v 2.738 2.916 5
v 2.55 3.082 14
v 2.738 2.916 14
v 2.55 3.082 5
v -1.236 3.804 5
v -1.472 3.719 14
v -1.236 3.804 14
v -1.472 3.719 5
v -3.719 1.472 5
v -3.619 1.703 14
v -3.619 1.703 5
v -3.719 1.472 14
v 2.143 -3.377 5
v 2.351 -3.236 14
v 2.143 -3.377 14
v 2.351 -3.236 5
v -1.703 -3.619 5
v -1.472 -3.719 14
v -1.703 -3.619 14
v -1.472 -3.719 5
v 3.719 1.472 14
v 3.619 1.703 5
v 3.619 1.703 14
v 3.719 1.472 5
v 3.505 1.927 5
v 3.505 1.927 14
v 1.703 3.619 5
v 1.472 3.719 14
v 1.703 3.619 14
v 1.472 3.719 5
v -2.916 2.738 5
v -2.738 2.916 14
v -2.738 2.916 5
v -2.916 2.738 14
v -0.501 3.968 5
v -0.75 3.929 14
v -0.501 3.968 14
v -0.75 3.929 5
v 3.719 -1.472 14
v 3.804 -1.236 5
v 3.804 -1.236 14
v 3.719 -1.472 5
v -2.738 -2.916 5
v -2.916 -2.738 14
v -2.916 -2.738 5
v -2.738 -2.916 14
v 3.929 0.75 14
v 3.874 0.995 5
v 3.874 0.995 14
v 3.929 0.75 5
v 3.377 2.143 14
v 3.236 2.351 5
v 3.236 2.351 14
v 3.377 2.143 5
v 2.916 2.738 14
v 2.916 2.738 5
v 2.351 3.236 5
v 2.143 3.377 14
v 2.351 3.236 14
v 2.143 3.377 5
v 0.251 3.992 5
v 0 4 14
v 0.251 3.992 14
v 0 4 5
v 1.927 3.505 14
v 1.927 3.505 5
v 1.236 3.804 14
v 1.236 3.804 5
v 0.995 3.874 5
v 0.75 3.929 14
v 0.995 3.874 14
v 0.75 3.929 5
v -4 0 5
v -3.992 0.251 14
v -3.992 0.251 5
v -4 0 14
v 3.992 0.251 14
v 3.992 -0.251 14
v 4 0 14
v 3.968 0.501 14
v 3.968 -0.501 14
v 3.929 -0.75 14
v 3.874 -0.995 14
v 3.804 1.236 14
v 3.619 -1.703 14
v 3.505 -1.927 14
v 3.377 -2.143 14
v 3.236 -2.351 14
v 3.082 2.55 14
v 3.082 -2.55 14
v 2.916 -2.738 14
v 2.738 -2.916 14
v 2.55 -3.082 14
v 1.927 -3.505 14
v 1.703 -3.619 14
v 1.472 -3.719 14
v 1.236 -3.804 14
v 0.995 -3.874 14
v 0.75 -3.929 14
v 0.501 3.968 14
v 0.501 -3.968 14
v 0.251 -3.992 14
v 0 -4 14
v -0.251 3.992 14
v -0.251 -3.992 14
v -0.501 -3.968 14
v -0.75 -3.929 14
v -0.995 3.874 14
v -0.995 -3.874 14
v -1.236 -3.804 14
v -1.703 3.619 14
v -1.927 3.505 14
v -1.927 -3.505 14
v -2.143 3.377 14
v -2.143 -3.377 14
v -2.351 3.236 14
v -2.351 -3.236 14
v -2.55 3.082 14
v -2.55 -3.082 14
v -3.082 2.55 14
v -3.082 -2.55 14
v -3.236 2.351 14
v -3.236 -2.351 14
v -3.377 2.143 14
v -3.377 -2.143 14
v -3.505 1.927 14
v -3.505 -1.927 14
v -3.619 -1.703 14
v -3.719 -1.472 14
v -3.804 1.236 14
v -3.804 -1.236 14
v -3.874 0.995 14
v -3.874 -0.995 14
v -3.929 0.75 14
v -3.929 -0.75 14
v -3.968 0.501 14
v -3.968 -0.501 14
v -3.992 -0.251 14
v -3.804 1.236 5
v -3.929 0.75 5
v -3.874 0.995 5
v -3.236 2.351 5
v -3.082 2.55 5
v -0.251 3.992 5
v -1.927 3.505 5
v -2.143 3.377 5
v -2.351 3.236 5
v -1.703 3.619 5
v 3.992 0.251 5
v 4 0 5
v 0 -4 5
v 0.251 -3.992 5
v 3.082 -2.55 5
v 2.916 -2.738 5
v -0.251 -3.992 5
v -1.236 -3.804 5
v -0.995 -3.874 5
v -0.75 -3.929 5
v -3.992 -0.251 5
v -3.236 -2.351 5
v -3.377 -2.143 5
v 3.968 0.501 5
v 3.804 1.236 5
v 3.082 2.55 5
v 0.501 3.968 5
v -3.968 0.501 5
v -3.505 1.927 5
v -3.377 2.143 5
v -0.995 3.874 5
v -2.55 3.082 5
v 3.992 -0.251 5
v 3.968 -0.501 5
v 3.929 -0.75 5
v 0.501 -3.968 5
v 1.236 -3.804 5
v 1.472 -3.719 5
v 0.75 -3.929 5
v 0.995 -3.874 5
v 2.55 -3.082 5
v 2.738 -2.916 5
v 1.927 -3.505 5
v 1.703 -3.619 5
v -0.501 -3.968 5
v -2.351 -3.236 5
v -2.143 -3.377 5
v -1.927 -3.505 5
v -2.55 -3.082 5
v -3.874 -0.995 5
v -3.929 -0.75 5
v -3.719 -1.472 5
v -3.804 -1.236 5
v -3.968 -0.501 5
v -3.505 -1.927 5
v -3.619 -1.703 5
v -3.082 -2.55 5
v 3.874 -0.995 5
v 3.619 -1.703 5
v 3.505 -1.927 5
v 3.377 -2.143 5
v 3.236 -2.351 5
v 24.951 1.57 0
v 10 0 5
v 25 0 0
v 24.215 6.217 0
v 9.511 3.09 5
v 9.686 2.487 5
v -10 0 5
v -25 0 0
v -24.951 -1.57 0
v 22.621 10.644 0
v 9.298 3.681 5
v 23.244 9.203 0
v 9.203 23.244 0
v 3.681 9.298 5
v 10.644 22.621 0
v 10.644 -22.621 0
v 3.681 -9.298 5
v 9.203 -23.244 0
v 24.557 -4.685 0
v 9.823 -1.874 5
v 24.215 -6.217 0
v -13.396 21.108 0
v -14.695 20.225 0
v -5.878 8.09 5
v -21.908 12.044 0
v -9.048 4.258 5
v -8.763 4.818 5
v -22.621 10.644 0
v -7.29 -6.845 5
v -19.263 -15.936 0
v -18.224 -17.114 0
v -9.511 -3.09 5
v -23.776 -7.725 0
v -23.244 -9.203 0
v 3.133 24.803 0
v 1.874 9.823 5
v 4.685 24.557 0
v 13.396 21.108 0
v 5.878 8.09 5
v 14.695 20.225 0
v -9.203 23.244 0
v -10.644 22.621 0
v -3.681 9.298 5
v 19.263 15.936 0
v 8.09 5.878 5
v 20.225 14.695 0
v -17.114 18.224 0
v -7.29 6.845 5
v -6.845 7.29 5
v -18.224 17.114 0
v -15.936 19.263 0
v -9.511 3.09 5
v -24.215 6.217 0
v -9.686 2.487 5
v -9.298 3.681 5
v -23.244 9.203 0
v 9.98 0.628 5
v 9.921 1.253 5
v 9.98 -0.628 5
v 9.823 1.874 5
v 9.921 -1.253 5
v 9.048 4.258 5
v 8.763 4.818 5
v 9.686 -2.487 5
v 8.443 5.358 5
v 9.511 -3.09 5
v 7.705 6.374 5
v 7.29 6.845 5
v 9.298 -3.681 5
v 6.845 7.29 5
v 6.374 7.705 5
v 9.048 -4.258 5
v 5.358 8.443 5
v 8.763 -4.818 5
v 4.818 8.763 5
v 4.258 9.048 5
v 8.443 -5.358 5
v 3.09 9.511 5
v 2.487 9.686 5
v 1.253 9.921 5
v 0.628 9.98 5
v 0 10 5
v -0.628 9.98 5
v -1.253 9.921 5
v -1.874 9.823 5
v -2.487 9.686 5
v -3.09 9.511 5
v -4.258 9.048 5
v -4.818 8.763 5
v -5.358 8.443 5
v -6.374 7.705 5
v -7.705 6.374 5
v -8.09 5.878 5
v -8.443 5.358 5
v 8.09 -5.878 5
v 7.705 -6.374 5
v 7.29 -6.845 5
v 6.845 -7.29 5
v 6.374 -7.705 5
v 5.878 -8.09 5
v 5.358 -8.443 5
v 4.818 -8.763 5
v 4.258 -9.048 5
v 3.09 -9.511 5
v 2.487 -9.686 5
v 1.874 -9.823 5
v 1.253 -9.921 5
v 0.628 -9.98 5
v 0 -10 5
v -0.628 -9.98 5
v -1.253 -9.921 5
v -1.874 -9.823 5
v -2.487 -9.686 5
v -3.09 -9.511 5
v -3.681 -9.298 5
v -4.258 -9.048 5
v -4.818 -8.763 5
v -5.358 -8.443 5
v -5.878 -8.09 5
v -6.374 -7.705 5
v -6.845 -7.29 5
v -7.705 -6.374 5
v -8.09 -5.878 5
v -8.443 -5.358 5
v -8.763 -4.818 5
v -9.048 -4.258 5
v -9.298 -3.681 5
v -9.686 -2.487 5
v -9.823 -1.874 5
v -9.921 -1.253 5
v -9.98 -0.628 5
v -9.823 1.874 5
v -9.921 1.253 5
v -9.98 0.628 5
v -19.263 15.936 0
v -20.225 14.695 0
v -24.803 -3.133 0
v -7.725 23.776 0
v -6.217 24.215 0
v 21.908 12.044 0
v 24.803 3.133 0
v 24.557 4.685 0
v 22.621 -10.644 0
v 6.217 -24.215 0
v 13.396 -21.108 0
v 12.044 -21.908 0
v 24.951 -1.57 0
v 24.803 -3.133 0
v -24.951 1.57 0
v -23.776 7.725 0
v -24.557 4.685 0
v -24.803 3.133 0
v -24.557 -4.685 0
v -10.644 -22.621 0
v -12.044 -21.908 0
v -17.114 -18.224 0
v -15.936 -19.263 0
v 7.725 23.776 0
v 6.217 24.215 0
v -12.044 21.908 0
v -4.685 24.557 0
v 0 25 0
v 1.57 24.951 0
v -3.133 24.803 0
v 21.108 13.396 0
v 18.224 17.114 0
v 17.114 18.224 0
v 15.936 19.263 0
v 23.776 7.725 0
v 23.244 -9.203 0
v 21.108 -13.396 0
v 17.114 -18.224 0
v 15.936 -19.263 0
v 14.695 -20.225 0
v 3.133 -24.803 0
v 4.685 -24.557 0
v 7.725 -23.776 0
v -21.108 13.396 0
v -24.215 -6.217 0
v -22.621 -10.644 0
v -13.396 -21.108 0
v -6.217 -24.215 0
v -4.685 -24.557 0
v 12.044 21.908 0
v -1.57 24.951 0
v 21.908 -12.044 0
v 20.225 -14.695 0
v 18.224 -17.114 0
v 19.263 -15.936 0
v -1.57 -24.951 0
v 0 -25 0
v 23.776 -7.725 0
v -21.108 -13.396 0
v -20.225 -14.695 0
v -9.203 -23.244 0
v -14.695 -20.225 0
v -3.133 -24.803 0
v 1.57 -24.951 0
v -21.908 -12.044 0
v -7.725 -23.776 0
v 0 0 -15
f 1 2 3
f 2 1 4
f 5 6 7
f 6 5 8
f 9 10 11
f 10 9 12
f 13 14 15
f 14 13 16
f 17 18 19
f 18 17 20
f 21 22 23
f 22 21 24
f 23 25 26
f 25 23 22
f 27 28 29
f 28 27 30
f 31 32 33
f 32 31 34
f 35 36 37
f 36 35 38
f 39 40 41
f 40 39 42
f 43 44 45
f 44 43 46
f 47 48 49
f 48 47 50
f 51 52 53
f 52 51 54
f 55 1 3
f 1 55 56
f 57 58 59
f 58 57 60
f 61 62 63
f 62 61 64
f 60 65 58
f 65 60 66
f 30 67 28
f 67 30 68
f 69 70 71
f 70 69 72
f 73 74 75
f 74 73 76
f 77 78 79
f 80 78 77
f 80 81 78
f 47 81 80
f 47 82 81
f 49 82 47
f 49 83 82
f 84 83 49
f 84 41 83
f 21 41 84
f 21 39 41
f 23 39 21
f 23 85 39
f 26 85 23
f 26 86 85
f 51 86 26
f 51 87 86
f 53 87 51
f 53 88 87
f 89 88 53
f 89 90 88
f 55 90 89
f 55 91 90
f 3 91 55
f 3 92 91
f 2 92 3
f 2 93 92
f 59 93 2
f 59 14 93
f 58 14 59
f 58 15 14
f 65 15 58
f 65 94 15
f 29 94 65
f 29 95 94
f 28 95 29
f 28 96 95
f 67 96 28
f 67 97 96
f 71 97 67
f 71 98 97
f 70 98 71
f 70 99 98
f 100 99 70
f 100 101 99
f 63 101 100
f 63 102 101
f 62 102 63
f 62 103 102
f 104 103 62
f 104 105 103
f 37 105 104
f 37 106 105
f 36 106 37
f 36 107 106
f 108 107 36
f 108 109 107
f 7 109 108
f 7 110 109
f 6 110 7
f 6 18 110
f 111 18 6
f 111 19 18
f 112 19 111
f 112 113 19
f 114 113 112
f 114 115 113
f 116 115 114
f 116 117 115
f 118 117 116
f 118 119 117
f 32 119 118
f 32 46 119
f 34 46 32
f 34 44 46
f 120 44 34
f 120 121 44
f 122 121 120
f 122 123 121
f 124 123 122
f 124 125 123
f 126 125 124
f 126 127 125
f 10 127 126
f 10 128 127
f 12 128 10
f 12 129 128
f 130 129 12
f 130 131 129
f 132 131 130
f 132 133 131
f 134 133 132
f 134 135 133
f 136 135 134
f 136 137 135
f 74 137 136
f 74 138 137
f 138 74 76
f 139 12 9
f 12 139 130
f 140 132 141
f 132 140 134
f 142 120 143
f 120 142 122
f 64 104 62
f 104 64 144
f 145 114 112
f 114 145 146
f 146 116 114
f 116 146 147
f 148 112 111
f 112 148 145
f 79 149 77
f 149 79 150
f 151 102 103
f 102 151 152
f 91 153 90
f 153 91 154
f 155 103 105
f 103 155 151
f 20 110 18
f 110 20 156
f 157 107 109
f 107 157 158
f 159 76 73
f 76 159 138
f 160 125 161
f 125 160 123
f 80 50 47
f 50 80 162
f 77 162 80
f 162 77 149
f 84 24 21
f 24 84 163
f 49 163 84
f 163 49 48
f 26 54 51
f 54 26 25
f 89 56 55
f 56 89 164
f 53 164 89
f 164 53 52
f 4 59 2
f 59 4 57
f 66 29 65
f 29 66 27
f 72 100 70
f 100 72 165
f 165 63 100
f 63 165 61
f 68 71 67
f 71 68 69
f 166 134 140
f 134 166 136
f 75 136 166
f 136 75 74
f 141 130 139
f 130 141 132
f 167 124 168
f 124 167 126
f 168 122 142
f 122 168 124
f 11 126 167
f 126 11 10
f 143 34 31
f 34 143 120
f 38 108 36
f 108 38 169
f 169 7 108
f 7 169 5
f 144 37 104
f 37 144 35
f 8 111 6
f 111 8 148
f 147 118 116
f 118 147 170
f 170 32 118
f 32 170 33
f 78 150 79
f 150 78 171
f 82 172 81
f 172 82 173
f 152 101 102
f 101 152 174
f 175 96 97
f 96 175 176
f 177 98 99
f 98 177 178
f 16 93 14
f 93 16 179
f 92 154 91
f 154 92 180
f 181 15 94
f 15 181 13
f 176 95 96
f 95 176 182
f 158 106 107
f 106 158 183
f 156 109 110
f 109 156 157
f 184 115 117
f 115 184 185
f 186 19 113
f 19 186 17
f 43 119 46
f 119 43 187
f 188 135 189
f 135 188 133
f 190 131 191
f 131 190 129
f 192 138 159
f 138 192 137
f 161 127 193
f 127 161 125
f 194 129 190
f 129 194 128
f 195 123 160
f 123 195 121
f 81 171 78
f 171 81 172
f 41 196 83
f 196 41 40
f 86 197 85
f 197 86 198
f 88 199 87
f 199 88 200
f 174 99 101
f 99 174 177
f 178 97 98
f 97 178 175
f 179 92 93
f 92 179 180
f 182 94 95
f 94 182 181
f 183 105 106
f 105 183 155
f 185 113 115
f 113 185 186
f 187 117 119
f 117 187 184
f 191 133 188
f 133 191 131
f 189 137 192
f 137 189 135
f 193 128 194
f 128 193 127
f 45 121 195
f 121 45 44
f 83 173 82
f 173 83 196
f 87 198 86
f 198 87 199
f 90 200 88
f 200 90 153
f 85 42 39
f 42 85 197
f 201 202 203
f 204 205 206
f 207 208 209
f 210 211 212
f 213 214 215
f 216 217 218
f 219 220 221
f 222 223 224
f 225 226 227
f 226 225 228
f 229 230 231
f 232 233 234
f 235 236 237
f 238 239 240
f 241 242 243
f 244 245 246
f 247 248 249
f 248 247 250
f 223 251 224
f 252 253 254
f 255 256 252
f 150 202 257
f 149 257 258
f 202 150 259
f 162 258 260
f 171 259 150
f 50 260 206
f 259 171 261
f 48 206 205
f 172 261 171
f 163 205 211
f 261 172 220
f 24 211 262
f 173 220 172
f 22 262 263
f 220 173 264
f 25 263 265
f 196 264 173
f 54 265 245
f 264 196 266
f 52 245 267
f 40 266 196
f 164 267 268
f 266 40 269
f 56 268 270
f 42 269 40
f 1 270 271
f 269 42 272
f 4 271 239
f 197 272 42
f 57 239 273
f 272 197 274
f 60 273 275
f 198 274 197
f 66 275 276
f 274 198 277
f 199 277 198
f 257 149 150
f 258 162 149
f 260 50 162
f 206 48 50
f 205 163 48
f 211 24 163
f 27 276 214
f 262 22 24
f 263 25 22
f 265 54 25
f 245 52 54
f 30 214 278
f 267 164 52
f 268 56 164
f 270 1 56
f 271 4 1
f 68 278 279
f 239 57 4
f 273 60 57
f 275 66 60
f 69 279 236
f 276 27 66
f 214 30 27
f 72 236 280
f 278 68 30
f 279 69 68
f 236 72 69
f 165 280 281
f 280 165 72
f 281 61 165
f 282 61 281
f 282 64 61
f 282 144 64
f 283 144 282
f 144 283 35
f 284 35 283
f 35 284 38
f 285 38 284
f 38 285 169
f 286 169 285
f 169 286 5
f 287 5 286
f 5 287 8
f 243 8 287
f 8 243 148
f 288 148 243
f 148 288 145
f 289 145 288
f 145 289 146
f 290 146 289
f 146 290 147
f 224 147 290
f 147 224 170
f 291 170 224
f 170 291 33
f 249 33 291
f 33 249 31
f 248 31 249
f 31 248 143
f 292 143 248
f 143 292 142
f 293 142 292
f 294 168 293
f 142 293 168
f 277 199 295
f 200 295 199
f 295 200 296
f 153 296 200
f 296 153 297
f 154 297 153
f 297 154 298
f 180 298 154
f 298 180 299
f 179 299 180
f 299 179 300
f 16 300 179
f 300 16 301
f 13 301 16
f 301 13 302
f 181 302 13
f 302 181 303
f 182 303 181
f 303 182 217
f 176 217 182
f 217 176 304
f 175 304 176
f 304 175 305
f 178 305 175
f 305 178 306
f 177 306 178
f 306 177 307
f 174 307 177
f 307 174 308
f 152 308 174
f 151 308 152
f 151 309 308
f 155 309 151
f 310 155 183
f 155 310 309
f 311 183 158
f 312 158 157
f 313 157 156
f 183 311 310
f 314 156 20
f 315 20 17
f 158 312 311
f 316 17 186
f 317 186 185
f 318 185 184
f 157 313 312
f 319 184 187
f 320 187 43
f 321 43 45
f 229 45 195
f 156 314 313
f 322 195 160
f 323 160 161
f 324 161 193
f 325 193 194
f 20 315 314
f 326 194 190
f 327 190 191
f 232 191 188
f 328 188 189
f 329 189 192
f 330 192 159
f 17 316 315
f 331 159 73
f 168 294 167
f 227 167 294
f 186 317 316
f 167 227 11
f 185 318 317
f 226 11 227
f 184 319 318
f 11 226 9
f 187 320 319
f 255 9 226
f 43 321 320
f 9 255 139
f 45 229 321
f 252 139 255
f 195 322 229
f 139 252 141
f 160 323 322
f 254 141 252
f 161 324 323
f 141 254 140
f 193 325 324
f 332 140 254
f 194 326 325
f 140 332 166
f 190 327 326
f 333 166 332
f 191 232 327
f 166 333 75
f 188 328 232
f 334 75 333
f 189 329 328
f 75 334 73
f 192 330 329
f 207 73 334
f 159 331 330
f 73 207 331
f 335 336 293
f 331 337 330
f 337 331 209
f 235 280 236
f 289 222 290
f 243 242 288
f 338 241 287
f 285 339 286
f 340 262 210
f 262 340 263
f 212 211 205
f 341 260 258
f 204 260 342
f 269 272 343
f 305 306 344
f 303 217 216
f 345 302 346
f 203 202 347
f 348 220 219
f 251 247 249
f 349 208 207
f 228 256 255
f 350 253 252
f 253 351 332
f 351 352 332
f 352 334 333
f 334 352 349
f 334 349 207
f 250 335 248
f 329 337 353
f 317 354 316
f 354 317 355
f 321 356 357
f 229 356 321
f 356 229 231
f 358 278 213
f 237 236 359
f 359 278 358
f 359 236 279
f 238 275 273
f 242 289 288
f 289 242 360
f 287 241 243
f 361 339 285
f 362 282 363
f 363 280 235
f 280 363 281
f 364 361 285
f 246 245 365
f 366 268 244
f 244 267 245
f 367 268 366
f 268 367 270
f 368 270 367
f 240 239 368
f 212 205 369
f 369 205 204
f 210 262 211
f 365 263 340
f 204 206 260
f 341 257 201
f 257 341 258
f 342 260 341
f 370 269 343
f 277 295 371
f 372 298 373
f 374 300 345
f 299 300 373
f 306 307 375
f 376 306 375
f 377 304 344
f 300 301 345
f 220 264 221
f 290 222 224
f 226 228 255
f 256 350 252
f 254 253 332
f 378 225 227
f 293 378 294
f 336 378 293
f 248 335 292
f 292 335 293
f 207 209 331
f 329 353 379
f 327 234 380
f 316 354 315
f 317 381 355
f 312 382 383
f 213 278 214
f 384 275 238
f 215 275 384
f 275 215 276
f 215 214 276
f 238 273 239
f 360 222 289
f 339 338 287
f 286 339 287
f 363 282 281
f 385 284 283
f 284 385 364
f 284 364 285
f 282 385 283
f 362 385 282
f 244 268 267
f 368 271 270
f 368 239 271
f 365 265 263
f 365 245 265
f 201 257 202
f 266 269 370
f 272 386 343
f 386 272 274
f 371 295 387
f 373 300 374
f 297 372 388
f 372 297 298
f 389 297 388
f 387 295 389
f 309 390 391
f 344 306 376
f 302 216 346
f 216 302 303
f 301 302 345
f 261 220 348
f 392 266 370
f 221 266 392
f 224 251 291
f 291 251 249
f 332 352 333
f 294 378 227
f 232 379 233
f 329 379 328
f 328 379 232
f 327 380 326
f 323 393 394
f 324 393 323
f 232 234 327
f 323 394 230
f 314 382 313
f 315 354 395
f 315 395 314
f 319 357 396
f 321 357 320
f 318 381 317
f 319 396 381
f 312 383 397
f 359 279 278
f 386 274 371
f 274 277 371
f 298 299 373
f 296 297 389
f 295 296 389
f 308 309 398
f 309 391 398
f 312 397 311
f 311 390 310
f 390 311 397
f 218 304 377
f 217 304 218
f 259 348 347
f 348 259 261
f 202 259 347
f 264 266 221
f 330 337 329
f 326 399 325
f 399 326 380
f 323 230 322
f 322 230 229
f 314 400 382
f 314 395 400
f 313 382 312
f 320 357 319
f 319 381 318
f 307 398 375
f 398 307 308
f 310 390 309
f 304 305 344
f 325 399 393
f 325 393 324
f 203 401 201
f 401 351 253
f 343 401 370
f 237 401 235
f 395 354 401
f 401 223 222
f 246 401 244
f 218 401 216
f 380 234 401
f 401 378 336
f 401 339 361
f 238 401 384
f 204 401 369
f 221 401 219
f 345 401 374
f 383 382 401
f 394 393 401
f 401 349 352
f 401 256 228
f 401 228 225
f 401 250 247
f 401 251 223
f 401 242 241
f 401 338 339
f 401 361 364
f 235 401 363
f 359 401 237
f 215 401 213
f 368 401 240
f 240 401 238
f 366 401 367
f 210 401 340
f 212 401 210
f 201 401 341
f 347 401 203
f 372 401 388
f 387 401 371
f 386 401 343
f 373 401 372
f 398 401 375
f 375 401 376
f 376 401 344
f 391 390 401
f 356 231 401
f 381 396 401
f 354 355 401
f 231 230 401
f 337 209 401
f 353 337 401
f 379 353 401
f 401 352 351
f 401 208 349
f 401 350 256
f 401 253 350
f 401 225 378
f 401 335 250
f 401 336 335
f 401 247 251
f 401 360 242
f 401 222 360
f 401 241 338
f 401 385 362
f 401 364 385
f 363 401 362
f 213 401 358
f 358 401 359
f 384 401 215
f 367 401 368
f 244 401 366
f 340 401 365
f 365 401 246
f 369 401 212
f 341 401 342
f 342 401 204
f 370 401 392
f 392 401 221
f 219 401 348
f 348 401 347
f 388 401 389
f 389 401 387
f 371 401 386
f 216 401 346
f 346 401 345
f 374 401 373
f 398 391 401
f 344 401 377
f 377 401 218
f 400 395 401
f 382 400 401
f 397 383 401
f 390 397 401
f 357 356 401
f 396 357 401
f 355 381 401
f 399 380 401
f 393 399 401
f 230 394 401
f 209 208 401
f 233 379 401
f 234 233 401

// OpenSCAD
$fn=100;
union() {
    translate([0,0,4]) cylinder(10,4,4);
    cylinder(5,25,10);
    translate([0,0,-15]) cylinder(15,0,25);
}
